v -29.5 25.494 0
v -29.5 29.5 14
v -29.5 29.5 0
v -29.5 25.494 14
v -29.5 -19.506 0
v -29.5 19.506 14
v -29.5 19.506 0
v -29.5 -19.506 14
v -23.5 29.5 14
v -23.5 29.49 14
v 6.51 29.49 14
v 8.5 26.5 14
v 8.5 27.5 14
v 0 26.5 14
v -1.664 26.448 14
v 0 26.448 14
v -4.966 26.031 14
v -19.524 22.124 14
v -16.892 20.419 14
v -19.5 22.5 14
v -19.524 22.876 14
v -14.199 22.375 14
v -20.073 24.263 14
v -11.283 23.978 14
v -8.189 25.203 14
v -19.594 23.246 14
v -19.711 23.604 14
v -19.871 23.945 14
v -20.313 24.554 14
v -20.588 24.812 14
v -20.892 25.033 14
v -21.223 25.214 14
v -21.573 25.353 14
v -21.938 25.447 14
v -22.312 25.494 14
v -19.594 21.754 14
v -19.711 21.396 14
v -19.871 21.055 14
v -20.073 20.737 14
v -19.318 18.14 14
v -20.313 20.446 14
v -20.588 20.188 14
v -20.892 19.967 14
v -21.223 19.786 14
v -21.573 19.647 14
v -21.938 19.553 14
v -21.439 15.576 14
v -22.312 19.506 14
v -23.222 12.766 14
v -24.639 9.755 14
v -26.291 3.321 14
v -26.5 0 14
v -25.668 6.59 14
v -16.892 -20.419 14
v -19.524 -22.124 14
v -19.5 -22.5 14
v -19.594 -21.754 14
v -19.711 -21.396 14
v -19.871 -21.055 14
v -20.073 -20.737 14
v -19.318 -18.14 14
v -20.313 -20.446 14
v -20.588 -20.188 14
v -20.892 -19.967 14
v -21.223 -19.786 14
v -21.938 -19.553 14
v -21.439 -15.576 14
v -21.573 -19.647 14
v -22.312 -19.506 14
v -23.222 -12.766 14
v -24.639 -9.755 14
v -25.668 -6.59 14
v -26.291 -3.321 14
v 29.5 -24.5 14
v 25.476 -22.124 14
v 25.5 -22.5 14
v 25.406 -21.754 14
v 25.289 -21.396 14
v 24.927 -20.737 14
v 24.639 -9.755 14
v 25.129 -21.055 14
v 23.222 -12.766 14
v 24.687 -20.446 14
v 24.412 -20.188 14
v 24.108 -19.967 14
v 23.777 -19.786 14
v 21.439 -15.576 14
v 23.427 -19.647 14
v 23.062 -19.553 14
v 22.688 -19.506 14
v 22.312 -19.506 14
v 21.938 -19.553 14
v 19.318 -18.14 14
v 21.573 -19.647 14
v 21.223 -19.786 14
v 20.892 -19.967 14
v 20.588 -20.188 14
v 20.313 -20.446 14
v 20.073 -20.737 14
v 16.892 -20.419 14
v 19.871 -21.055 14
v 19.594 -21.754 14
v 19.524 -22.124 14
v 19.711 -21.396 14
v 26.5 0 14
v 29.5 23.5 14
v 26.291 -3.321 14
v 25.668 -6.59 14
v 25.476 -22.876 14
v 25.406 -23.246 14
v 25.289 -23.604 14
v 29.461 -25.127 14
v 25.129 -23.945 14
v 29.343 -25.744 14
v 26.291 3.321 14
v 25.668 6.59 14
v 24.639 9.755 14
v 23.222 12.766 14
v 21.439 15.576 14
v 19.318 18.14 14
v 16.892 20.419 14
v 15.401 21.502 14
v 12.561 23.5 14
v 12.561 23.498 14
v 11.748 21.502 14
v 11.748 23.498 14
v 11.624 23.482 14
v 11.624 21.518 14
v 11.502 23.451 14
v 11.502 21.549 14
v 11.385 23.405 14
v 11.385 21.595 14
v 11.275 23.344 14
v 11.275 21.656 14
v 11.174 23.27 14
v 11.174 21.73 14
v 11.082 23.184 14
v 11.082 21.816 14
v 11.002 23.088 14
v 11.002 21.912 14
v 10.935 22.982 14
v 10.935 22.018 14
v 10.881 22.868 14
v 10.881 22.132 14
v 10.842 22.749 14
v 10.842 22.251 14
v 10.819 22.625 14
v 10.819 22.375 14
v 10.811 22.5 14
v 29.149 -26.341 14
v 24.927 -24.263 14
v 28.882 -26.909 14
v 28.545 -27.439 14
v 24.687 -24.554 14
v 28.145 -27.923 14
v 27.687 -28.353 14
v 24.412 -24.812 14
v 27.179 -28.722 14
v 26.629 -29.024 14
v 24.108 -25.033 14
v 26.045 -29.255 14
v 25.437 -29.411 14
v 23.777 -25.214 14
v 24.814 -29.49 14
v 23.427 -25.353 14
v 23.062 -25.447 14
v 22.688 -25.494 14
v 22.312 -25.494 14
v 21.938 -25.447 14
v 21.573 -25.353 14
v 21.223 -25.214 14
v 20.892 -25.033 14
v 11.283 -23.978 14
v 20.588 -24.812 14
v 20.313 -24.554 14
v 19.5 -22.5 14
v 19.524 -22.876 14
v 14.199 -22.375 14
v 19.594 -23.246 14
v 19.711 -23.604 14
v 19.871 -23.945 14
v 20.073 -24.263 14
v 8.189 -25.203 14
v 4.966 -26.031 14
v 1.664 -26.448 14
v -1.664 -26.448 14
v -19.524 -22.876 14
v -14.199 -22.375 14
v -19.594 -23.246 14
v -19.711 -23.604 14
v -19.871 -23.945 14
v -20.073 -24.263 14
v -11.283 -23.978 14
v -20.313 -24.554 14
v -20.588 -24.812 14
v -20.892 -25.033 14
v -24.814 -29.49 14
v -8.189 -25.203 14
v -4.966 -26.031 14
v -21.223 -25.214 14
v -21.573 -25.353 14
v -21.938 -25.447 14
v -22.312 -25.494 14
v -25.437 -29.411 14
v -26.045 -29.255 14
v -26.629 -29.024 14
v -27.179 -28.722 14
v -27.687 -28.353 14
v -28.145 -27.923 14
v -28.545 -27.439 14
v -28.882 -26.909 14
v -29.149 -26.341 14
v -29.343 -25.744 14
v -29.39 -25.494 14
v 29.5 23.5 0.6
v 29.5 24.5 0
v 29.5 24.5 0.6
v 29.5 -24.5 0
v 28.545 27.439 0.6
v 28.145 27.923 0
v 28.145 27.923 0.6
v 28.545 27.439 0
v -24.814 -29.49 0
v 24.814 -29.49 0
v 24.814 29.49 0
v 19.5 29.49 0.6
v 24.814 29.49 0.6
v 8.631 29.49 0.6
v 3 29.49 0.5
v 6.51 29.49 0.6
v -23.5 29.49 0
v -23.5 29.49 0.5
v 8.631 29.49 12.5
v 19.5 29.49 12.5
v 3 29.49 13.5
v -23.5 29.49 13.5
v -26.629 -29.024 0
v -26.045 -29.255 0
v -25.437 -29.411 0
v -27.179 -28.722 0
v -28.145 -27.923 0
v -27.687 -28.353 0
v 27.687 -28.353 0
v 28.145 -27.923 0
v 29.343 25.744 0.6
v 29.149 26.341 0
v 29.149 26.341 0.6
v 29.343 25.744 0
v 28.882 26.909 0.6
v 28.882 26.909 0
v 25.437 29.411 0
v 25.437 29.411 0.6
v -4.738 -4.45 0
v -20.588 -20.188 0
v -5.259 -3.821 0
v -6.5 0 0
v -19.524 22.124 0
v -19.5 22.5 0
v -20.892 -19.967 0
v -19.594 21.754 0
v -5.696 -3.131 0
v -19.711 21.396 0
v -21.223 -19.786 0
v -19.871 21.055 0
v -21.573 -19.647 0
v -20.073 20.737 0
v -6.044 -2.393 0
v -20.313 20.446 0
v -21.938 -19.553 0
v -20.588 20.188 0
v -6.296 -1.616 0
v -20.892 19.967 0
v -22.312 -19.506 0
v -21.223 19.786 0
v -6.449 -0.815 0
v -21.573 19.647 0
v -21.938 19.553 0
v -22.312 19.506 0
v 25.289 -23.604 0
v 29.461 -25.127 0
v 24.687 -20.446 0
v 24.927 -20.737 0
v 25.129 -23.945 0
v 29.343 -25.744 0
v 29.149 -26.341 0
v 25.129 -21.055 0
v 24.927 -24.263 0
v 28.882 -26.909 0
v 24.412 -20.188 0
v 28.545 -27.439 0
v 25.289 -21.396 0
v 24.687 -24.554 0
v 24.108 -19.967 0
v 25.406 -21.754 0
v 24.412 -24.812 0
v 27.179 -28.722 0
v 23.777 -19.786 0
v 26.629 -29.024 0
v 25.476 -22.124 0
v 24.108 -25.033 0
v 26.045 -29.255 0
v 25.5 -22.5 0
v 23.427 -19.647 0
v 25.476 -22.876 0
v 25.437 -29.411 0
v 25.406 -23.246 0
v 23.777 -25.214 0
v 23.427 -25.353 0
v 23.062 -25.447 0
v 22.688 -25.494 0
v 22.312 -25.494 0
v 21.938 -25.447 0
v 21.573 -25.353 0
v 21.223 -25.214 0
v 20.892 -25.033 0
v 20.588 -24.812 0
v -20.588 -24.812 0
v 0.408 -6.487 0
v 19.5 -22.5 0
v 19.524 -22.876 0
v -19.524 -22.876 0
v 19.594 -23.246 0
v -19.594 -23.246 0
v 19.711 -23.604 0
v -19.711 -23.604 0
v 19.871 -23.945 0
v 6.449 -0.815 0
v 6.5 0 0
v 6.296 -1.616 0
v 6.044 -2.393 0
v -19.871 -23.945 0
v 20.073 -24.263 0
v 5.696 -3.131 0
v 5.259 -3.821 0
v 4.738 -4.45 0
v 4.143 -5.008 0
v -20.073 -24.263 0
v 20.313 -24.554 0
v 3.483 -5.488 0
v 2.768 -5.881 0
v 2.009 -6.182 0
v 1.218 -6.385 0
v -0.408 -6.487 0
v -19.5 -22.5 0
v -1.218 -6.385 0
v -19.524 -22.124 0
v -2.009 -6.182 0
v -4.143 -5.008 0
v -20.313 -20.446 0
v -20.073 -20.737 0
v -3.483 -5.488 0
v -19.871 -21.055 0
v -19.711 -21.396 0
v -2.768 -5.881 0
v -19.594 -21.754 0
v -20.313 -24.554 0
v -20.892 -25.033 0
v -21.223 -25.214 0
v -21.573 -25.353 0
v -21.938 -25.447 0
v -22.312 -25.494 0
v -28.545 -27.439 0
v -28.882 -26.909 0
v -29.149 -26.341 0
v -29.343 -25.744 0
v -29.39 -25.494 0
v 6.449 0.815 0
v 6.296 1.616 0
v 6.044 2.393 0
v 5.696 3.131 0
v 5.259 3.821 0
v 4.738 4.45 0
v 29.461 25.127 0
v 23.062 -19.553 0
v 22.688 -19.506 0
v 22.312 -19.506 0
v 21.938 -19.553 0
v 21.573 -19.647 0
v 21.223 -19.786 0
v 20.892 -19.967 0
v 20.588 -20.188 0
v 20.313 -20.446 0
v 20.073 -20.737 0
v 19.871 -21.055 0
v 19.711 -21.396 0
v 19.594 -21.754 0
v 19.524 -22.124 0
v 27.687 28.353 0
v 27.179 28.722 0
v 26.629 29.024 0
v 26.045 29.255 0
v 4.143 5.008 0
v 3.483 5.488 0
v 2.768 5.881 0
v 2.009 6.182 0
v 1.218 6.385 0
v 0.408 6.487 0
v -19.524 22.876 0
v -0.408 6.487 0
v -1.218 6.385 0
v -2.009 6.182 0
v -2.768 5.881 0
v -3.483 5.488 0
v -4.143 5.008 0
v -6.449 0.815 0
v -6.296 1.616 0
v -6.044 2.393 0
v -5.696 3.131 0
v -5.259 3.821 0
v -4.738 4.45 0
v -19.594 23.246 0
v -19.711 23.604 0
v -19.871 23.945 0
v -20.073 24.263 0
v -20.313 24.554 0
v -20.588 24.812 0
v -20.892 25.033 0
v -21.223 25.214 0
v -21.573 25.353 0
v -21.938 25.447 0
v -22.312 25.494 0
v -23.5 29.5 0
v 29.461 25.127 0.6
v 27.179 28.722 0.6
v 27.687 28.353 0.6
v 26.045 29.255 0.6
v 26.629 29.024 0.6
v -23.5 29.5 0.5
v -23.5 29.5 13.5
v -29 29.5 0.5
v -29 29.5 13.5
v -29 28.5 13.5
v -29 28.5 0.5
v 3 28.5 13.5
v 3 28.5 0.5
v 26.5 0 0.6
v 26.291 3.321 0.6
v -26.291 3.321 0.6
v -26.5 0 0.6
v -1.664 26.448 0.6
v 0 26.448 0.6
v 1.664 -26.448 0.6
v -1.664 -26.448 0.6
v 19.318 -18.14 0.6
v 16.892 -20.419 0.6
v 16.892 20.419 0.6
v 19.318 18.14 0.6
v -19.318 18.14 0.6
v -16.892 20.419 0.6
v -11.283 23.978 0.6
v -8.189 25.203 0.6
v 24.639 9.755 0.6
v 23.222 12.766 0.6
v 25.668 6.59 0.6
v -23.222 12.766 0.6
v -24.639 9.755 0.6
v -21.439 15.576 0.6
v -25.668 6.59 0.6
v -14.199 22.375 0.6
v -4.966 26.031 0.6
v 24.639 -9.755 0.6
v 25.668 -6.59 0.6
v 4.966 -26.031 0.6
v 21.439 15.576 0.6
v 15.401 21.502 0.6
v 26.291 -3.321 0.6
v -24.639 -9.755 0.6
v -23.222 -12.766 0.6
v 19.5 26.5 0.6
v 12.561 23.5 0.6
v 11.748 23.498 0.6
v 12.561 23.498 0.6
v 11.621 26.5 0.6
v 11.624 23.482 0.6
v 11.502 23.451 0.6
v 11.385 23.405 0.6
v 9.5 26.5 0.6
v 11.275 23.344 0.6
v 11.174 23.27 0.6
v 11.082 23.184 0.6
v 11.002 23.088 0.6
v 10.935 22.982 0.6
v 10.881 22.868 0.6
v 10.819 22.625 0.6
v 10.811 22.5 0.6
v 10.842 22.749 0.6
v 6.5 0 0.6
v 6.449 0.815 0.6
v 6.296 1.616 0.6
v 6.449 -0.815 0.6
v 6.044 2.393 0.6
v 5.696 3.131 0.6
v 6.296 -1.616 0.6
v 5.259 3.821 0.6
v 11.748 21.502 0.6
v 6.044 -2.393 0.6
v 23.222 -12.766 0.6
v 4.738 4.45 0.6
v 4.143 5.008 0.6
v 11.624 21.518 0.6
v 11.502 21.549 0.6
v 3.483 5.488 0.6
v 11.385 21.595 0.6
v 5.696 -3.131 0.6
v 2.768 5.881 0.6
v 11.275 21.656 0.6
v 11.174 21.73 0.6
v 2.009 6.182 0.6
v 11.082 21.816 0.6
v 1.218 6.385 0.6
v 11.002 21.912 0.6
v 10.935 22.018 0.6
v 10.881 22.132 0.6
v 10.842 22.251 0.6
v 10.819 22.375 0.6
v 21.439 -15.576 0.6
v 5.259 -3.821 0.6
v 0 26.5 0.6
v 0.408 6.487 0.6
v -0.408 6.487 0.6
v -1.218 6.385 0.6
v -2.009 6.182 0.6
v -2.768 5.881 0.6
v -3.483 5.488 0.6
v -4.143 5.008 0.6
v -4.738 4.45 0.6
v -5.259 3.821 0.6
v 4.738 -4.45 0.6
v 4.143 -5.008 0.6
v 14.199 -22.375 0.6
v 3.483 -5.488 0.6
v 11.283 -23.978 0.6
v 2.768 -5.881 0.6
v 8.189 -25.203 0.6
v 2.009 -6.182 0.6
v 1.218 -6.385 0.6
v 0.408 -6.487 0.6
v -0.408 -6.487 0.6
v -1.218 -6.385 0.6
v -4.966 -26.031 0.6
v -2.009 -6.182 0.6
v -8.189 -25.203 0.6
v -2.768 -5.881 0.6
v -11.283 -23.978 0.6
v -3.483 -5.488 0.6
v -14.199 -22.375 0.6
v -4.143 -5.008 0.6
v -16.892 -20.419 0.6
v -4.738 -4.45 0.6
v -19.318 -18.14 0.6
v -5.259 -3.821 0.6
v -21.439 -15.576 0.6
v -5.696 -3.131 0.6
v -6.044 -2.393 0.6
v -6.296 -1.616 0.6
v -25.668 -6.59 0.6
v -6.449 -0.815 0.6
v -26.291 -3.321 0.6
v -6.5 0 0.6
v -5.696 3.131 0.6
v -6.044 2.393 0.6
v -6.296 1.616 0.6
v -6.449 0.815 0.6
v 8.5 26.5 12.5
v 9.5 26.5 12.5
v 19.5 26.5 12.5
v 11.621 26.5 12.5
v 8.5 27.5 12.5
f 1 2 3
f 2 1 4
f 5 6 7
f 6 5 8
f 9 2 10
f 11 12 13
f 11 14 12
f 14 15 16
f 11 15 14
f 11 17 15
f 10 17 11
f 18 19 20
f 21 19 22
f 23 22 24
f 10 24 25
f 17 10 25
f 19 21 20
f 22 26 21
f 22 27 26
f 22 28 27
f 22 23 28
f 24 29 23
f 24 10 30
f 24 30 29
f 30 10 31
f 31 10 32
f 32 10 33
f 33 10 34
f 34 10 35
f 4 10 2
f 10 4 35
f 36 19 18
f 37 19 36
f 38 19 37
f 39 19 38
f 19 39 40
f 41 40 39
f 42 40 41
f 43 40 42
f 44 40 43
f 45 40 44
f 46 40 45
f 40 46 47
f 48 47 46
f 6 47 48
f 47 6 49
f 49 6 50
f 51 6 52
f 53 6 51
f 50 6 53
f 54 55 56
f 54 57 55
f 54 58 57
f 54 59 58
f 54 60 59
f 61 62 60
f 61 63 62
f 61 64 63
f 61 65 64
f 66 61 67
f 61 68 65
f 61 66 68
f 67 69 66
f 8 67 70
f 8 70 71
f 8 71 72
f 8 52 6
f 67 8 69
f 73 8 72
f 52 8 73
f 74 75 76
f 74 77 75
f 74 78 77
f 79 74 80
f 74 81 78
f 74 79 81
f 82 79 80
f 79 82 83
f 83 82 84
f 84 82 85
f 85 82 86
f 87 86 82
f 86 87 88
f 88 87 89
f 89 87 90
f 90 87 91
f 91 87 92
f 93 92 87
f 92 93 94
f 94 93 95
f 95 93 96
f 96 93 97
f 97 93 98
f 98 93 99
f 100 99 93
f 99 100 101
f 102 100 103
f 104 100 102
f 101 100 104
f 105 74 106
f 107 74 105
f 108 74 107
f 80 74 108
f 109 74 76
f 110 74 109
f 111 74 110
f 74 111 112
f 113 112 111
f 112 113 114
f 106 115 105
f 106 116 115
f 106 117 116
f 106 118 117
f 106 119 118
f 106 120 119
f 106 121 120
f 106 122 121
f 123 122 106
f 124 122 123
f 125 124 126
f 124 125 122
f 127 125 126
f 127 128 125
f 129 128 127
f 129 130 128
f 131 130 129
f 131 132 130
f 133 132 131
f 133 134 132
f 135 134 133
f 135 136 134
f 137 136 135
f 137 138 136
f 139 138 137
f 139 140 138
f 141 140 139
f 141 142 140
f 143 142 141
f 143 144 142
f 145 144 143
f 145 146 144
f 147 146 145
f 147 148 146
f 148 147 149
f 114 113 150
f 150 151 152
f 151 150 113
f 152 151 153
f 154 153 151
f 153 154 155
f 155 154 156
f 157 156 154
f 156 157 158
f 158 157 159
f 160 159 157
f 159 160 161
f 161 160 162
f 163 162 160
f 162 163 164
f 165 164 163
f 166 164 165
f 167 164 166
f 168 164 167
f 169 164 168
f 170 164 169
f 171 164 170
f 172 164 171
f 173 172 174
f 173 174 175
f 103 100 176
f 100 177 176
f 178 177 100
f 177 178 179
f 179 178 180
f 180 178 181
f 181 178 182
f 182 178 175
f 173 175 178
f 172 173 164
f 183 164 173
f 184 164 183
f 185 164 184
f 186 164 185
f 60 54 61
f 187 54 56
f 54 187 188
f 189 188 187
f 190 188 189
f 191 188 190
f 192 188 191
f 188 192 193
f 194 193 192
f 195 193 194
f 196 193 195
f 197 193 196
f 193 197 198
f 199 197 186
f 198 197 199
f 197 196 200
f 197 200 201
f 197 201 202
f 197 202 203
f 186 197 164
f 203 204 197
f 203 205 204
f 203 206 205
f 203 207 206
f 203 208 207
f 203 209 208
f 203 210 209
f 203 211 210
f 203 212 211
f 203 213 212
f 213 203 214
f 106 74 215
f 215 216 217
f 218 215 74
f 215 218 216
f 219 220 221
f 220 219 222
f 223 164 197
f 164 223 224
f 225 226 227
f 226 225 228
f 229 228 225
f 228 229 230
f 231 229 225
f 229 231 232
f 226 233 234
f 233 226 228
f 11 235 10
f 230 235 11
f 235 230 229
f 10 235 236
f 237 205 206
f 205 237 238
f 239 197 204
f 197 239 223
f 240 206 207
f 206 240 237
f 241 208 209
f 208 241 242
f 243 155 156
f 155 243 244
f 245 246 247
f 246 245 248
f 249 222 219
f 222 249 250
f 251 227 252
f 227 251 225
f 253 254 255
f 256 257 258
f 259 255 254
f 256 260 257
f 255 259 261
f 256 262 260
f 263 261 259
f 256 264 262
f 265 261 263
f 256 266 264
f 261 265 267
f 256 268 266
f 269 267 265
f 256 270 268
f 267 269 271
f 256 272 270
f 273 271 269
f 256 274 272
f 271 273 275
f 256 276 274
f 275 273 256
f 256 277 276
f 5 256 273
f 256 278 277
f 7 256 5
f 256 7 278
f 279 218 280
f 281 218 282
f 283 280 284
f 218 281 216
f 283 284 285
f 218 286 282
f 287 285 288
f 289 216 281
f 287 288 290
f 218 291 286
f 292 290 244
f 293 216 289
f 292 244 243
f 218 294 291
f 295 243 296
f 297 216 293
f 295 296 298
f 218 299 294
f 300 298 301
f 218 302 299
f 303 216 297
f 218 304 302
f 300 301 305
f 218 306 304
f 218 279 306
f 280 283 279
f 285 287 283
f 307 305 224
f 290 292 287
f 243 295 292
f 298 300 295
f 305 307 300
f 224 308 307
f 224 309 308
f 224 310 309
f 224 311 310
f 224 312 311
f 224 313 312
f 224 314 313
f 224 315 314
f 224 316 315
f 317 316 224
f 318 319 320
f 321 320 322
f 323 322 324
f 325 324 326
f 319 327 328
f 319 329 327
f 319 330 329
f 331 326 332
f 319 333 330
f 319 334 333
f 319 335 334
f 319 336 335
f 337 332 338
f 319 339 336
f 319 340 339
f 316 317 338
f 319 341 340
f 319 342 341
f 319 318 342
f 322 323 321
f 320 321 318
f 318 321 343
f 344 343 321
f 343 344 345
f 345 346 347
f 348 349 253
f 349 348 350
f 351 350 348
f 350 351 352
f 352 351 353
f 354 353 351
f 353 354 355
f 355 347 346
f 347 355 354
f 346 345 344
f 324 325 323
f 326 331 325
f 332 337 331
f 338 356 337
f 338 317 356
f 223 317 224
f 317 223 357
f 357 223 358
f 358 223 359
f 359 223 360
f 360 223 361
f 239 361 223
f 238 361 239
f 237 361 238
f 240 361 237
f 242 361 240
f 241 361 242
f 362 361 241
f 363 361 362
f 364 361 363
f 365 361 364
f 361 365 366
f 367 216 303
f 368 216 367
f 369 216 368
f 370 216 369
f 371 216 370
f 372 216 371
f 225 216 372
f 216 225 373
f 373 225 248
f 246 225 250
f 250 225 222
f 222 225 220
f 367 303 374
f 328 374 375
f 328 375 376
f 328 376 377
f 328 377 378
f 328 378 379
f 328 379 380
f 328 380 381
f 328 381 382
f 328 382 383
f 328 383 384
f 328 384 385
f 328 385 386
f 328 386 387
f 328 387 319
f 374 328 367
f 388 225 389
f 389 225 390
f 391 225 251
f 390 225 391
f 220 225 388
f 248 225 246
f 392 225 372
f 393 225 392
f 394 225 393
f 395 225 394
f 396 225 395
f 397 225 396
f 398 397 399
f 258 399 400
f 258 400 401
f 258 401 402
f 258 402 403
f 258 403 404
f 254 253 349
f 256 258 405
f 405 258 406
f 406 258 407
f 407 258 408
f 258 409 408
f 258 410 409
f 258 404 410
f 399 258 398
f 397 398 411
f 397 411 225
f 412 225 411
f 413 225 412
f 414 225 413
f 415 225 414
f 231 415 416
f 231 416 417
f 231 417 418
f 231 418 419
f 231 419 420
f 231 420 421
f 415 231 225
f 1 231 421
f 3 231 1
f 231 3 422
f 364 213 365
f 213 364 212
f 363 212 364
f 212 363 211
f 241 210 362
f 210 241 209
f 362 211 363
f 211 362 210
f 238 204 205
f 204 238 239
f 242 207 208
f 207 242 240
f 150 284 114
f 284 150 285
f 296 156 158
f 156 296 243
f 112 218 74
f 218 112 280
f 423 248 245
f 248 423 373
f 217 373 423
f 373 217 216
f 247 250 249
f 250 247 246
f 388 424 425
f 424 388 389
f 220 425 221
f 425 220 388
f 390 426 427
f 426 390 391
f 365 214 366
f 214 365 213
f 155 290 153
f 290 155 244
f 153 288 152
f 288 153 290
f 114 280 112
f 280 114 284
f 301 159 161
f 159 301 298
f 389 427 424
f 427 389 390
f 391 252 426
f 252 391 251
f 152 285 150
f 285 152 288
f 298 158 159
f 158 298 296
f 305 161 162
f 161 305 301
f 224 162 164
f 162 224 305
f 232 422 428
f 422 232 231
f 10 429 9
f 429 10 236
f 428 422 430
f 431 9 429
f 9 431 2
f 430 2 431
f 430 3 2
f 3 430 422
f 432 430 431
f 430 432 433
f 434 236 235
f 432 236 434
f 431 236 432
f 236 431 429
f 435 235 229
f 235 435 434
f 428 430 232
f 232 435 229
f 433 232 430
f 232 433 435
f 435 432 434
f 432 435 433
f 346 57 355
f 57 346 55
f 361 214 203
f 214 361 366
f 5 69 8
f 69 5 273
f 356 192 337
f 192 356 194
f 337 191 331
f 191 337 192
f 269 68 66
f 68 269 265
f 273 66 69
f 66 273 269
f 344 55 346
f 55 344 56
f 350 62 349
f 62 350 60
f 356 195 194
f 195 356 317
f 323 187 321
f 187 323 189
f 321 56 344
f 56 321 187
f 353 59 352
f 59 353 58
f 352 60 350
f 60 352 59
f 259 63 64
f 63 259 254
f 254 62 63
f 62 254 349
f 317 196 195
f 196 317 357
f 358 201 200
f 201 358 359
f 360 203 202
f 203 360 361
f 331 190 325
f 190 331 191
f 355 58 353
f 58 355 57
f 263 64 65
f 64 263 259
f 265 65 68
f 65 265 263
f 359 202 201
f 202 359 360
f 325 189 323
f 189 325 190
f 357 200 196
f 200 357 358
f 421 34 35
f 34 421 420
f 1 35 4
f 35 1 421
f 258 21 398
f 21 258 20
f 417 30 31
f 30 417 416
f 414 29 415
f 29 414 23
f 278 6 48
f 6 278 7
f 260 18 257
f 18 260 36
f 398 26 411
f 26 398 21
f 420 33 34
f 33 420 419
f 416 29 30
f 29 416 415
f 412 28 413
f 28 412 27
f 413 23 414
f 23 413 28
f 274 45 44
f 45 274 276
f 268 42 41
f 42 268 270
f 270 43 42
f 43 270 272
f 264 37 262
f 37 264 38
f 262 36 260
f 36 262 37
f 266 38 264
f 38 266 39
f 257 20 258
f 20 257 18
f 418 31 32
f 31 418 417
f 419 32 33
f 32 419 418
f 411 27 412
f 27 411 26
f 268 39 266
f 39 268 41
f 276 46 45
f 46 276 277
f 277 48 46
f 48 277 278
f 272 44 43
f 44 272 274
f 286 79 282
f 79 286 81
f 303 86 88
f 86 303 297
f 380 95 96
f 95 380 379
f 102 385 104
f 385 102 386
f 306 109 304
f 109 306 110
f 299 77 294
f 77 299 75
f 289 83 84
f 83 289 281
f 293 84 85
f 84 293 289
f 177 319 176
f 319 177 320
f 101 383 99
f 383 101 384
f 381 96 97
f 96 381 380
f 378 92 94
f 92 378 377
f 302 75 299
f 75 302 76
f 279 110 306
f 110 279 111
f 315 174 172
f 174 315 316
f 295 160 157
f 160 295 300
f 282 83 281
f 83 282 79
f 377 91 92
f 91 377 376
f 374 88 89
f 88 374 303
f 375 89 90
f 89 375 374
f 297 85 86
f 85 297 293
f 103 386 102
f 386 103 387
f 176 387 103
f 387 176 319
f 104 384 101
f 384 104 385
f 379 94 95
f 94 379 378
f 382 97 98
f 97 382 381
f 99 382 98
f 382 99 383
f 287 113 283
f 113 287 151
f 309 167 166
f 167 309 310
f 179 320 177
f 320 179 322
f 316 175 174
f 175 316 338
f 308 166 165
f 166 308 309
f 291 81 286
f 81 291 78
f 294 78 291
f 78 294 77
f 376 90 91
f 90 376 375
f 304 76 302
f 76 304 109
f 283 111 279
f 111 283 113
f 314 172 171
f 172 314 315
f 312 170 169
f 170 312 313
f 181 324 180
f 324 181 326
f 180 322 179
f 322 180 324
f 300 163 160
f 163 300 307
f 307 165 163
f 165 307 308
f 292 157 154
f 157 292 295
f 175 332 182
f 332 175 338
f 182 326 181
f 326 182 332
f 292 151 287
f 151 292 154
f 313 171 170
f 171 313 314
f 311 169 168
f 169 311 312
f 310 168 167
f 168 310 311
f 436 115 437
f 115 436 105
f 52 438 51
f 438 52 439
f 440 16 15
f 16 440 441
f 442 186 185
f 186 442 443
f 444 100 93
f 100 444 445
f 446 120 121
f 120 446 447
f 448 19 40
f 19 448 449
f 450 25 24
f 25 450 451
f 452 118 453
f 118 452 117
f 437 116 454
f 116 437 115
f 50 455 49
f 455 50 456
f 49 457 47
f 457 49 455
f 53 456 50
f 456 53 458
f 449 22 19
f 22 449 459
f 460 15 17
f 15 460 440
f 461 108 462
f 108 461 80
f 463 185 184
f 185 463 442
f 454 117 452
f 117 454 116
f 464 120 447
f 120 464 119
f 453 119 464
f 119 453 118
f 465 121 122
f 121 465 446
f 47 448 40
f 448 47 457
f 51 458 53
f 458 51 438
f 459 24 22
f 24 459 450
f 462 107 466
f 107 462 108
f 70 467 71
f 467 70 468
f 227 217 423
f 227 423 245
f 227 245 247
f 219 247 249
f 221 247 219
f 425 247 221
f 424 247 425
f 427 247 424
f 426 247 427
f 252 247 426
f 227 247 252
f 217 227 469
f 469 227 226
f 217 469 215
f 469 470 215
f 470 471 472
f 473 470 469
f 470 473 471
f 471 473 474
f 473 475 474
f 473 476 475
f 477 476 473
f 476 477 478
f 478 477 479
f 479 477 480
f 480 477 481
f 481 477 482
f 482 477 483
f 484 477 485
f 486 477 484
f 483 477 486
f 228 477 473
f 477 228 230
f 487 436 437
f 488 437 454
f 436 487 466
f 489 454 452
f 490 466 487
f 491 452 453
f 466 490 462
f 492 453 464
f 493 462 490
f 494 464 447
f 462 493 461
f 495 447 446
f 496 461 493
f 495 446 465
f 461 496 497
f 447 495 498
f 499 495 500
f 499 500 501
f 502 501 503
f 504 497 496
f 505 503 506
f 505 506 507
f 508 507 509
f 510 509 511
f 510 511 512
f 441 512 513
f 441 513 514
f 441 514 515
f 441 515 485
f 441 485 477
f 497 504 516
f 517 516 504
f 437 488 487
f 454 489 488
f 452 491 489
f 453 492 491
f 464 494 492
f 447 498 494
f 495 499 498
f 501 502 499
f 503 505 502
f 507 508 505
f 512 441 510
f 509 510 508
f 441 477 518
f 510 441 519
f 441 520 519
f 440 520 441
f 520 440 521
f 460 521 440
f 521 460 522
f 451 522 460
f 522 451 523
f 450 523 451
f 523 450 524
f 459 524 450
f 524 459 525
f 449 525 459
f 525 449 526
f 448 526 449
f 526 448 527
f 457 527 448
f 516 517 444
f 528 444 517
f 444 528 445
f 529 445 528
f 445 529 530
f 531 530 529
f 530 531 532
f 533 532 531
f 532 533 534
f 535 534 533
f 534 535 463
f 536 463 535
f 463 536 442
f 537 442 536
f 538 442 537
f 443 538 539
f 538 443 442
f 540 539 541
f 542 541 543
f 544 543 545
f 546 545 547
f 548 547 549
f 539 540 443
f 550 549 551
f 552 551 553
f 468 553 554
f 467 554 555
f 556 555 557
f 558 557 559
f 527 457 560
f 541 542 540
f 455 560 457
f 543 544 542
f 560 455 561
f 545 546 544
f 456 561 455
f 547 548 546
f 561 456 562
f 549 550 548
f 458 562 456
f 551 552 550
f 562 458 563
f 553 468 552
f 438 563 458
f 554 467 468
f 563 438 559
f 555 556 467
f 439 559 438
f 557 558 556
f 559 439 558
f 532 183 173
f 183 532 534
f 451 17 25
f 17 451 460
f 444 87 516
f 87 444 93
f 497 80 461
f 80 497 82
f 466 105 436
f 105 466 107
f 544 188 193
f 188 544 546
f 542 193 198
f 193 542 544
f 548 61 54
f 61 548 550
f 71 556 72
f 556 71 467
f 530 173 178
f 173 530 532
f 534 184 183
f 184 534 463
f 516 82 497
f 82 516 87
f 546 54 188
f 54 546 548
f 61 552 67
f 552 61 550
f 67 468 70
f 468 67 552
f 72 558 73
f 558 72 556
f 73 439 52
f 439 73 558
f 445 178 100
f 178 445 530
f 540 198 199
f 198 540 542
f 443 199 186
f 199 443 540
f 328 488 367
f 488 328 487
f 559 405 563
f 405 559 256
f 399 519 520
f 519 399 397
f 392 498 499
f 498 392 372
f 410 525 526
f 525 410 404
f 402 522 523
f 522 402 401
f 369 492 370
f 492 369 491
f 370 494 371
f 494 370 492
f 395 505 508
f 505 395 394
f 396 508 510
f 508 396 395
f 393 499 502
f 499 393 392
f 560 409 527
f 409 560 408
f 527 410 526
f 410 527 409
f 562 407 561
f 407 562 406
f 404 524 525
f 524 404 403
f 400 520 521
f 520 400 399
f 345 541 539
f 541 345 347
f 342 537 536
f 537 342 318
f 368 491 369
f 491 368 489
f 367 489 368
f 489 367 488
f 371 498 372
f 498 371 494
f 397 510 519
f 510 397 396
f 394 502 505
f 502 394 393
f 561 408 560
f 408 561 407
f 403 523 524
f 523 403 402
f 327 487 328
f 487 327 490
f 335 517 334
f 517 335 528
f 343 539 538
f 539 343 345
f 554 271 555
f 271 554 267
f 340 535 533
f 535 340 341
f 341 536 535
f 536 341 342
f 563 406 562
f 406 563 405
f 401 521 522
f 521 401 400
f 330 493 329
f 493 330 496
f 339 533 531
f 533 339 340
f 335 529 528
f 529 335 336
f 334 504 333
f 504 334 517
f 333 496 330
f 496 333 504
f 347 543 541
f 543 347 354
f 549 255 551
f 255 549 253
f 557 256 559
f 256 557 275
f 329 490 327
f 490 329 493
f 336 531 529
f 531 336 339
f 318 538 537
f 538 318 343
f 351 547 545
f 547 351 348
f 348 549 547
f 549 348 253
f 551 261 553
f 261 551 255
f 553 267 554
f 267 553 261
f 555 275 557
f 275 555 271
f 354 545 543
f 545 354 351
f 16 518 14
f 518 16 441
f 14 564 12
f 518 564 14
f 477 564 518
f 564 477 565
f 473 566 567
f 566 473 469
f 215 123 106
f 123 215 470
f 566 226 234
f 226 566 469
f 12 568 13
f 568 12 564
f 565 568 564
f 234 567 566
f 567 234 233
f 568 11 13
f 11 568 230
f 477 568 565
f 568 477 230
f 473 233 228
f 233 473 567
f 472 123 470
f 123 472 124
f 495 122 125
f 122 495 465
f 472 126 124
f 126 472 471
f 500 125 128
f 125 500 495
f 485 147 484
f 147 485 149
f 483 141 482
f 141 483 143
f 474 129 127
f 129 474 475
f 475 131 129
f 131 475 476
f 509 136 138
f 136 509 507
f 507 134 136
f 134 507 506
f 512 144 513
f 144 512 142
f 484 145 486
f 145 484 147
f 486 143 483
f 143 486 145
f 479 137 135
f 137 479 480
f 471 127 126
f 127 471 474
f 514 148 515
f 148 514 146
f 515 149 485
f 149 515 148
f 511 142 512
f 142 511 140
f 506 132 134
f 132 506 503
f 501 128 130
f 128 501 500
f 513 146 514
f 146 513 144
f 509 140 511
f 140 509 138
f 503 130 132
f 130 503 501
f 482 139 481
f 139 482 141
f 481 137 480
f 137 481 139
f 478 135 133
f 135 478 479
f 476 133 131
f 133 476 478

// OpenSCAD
$fn = 50;


union() {
	difference() {
		union() {
			translate(v = [0, 0, 0]) {
				rotate(a = [0, 0, 0]) {
					hull() {
						translate(v = [-24.5000000000, 24.5000000000, 0]) {
							rotate(a = [0, 0, 0]) {
								translate(v = [0, 0, 0]) {
									rotate(a = [0, 0, 0]) {
										cylinder(h = 14, r = 5);
									}
								}
							}
						}
						translate(v = [24.5000000000, 24.5000000000, 0]) {
							rotate(a = [0, 0, 0]) {
								translate(v = [0, 0, 0]) {
									rotate(a = [0, 0, 0]) {
										cylinder(h = 14, r = 5);
									}
								}
							}
						}
						translate(v = [-24.5000000000, -24.5000000000, 0]) {
							rotate(a = [0, 0, 0]) {
								translate(v = [0, 0, 0]) {
									rotate(a = [0, 0, 0]) {
										cylinder(h = 14, r = 5);
									}
								}
							}
						}
						translate(v = [24.5000000000, -24.5000000000, 0]) {
							rotate(a = [0, 0, 0]) {
								translate(v = [0, 0, 0]) {
									rotate(a = [0, 0, 0]) {
										cylinder(h = 14, r = 5);
									}
								}
							}
						}
					}
				}
			}
			translate(v = [-29.5000000000, 23.5000000000, 0]) {
				rotate(a = [0, 0, 0]) {
					cube(size = [6, 6, 14]);
				}
			}
		}
		union() {
			#translate(v = [-29.0000000000, 28.5000000000, 0.5000000000]) {
				rotate(a = [0, 0, 0]) {
					cube(size = [32, 1, 13.0000000000]);
				}
			}
			translate(v = [-30.0000000000, -22.5000000000, -125]) {
				rotate(a = [0, 0, 0]) {
					hull() {
						translate(v = [7.5000000000, 0, 0]) {
							rotate(a = [0, 0, 0]) {
								translate(v = [0, 0, 0]) {
									rotate(a = [0, 0, 0]) {
										cylinder(h = 250, r = 3.0000000000);
									}
								}
							}
						}
						translate(v = [-7.5000000000, 0, 0]) {
							rotate(a = [0, 0, 0]) {
								translate(v = [0, 0, 0]) {
									rotate(a = [0, 0, 0]) {
										cylinder(h = 250, r = 3.0000000000);
									}
								}
							}
						}
					}
				}
			}
			translate(v = [-30.0000000000, 22.5000000000, -125]) {
				rotate(a = [0, 0, 0]) {
					hull() {
						translate(v = [7.5000000000, 0, 0]) {
							rotate(a = [0, 0, 0]) {
								translate(v = [0, 0, 0]) {
									rotate(a = [0, 0, 0]) {
										cylinder(h = 250, r = 3.0000000000);
									}
								}
							}
						}
						translate(v = [-7.5000000000, 0, 0]) {
							rotate(a = [0, 0, 0]) {
								translate(v = [0, 0, 0]) {
									rotate(a = [0, 0, 0]) {
										cylinder(h = 250, r = 3.0000000000);
									}
								}
							}
						}
					}
				}
			}
			translate(v = [22.5000000000, -22.5000000000, -125.0000000000]) {
				rotate(a = [0, 0, 0]) {
					cylinder(h = 250, r = 3.0000000000);
				}
			}
			translate(v = [0, 0, 0.6000000000]) {
				rotate(a = [0, 0, 0]) {
					cylinder(h = 16.4000000000, r = 26.5000000000);
				}
			}
			translate(v = [0, 0, -7.0000000000]) {
				rotate(a = [0, 0, 0]) {
					cylinder(h = 14, r = 6.5000000000);
				}
			}
			translate(v = [0.0000000000, 23.5000000000, 0.6000000000]) {
				rotate(a = [0, 0, 0]) {
					cube(size = [29.5000000000, 3, 16.4000000000]);
				}
			}
			translate(v = [19.5000000000, 23.5000000000, 0.6000000000]) {
				rotate(a = [0, 0, 0]) {
					cube(size = [10, 6, 16.4000000000]);
				}
			}
			translate(v = [8.5000000000, 23.5000000000, 12.5000000000]) {
				rotate(a = [0, 0, 0]) {
					cube(size = [21, 6, 1.5000000000]);
				}
			}
			translate(v = [5.7500000000, 30.2500000000, 0.6000000000]) {
				rotate(a = [0, 0, -45]) {
					cube(size = [7.5000000000, 1.5000000000, 16.4000000000]);
				}
			}
			translate(v = [5.0610000000, 21.5000000000, 0.6000000000]) {
				rotate(a = [0, 0, 0]) {
					cube(size = [7.5000000000, 2, 13.4000000000]);
				}
			}
		}
	}
	union() {
		translate(v = [14.3110000000, 22.5000000000, 0]) {
			rotate(a = [0, 0, 0]) {
				hull() {
					translate(v = [2.5000000000, 0, 0]) {
						rotate(a = [0, 0, 0]) {
							#translate(v = [0, 0, 0]) {
								rotate(a = [0, 0, 0]) {
									cylinder(h = 14, r = 1.0000000000);
								}
							}
						}
					}
					translate(v = [-2.5000000000, 0, 0]) {
						rotate(a = [0, 0, 0]) {
							#translate(v = [0, 0, 0]) {
								rotate(a = [0, 0, 0]) {
									cylinder(h = 14, r = 1.0000000000);
								}
							}
						}
					}
				}
			}
		}
	}
}
